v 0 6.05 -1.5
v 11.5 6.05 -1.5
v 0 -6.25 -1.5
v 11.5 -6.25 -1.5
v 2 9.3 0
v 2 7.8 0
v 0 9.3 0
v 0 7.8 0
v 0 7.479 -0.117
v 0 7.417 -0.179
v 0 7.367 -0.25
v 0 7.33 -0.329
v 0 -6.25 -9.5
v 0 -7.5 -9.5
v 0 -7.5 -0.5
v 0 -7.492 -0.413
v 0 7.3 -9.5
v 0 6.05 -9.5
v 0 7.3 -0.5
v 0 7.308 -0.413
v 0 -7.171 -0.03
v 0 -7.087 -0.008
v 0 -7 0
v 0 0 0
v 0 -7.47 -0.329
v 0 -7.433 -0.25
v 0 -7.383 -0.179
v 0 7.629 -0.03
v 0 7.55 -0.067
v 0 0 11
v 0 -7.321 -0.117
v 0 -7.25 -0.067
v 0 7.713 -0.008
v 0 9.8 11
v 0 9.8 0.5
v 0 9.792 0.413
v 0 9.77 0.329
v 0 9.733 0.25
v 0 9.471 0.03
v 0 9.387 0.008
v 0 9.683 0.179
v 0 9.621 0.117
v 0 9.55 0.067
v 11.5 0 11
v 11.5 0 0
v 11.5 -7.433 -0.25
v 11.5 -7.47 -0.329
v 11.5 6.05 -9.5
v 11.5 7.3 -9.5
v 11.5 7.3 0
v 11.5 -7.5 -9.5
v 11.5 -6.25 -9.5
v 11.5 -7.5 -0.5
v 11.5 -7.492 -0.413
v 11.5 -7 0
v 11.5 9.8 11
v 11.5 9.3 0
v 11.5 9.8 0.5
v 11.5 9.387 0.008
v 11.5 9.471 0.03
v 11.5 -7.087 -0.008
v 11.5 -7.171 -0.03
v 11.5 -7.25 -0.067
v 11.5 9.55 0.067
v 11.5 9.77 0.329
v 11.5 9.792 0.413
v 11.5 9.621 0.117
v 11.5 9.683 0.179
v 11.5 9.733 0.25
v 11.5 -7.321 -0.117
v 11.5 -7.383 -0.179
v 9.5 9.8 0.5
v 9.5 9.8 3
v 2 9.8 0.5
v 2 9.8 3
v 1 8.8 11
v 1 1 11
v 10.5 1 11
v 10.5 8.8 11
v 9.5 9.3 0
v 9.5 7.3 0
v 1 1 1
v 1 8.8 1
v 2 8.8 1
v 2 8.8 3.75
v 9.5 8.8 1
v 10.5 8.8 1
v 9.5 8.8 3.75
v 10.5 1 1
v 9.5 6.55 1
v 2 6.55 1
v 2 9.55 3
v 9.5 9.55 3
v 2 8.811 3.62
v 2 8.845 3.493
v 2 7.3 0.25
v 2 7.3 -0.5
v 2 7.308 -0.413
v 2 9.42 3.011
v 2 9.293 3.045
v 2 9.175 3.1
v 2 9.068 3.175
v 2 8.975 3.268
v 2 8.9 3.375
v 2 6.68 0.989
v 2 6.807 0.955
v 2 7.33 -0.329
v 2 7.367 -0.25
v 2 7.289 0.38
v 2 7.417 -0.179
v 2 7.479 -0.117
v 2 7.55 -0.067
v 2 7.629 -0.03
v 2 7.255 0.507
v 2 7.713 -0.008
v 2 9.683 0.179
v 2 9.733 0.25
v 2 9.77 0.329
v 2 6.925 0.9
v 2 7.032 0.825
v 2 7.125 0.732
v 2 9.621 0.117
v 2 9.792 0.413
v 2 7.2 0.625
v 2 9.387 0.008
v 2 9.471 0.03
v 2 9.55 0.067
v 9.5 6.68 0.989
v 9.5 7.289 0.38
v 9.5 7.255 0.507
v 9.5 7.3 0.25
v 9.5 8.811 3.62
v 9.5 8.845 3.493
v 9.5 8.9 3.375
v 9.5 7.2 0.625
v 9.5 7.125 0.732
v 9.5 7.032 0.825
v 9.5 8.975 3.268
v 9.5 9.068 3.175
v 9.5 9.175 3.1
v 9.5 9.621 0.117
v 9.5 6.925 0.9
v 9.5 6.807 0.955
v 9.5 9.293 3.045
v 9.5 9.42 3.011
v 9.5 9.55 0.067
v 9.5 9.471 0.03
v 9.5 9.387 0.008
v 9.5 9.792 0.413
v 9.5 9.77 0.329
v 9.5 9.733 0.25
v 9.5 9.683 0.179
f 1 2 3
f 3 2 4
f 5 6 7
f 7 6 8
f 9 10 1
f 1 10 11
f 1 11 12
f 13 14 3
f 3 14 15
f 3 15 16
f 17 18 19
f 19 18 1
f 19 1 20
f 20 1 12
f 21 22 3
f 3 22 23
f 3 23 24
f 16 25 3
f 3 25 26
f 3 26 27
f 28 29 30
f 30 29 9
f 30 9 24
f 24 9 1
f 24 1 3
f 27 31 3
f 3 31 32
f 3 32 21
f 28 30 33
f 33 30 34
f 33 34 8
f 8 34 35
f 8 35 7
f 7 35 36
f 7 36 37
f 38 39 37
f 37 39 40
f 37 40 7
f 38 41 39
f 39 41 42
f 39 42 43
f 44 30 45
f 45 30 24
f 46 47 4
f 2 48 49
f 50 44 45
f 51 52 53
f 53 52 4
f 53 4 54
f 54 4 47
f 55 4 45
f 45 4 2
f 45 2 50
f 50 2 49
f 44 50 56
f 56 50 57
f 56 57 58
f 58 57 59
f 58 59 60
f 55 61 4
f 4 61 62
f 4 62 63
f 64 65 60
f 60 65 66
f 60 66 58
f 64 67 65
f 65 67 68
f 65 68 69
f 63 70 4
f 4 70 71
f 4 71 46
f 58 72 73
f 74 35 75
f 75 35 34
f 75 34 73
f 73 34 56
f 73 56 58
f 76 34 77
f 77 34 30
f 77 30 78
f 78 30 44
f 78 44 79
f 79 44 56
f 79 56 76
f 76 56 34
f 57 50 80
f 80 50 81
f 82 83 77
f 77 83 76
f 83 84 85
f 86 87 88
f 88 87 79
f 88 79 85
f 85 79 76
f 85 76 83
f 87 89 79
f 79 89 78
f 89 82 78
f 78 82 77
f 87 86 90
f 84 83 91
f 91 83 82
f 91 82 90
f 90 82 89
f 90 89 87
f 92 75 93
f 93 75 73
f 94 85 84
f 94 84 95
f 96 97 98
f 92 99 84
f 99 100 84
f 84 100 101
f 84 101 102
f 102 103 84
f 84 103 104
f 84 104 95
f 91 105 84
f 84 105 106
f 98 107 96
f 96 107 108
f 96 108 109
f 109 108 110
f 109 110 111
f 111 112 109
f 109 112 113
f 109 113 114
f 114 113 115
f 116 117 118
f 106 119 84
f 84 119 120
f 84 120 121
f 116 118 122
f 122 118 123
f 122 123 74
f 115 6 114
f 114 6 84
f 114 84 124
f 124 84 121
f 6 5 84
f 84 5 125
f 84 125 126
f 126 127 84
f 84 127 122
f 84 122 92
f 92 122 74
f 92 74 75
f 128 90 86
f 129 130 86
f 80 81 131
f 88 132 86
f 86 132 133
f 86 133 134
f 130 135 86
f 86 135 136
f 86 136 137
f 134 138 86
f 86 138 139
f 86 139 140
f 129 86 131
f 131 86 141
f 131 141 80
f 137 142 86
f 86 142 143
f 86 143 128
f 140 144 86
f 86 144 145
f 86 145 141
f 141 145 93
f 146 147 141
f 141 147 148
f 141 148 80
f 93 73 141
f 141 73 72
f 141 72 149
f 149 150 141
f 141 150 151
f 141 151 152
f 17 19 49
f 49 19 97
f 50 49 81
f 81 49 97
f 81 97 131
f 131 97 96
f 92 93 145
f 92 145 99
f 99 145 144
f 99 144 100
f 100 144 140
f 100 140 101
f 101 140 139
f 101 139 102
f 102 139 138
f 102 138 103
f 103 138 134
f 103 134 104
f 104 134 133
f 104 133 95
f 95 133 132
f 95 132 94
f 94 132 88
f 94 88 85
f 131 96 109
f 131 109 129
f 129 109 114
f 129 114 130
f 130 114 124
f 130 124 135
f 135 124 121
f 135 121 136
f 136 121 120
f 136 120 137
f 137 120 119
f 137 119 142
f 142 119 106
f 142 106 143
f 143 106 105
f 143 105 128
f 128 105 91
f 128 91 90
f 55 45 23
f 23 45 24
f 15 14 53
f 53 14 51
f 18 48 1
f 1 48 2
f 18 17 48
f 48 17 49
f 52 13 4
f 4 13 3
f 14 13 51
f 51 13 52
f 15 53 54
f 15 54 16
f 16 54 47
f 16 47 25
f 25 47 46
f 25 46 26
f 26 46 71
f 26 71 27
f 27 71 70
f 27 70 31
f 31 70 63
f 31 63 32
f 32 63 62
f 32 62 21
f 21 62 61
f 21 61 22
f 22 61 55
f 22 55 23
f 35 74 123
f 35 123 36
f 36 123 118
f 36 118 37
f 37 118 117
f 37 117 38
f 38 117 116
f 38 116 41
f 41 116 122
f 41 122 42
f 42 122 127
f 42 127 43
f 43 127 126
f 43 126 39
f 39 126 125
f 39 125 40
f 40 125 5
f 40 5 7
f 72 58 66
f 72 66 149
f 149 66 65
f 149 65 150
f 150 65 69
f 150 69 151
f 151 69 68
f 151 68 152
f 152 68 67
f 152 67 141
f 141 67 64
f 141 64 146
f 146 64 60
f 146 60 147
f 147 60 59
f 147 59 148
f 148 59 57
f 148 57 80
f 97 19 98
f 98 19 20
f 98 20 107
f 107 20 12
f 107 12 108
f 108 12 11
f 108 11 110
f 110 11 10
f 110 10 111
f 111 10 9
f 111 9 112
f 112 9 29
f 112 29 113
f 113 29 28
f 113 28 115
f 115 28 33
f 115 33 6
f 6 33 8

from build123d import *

# Parameters (mm, degrees)
ESQUISSE1_W             = 11.5
ESQUISSE1_H             = 9.8
BOSS_EXTRU_1_DEPTH      = 11
ESQUISSE2_W             = 9.5
ESQUISSE2_H             = 7.8
ENL_V_MAT_EXTRU_1_DEPTH = 10
ESQUISSE3_W             = 7.5
ESQUISSE3_H             = 3
ENL_V_MAT_EXTRU_2_DEPTH = 2.5
CONG_1_R                = 0.75
ESQUISSE4_W             = 11.5
ESQUISSE4_H             = 14.8
BOSS_EXTRU_2_DEPTH      = 1.5
ESQUISSE5_W             = 11.5
ESQUISSE5_H             = 1.25
BOSS_EXTRU_3_DEPTH      = 8
CONG_2_R                = 0.5
CONG_3_R                = 0.5


with BuildPart() as part:
    # Esquisse1 → Boss.-Extru.1 (new body)
    with BuildSketch(Plane.XY):
        with Locations((5.75, 4.9)):
            Rectangle(ESQUISSE1_W, ESQUISSE1_H)
    extrude(amount=BOSS_EXTRU_1_DEPTH)

    # Esquisse2 → Enlèv. mat.-Extru.1 (cut)
    with BuildSketch(Plane.XY.offset(11)):
        with Locations((5.75, 4.9)):
            Rectangle(ESQUISSE2_W, ESQUISSE2_H)
    extrude(amount=-ENL_V_MAT_EXTRU_1_DEPTH, mode=Mode.SUBTRACT)

    # Esquisse3 → Enlèv. mat.-Extru.2 (cut)
    with BuildSketch(Plane(origin=(0, 9.8, 0), x_dir=(1, 0, 0), z_dir=(0, 1, 0))):
        with Locations((5.75, -1.5)):
            Rectangle(ESQUISSE3_W, ESQUISSE3_H)
    extrude(amount=-ENL_V_MAT_EXTRU_2_DEPTH, mode=Mode.SUBTRACT)

    # Congé1
    cong_1_edges = [part.edges().sort_by_distance(p)[0] for p in [
        (5.75, 7.3, 1),
        (5.75, 8.8, 3),
    ]]
    fillet(cong_1_edges, radius=CONG_1_R)

    # Esquisse4 → Boss.-Extru.2 (add)
    with BuildSketch(Plane(origin=(0, 0, 0), x_dir=(-1, 0, 0), z_dir=(0, 0, -1))):
        with Locations((-5.75, -0.1)):
            Rectangle(ESQUISSE4_W, ESQUISSE4_H)
    extrude(amount=BOSS_EXTRU_2_DEPTH)

    # Esquisse5 → Boss.-Extru.3 (add)
    with BuildSketch(Plane(origin=(0, 0, -1.5), x_dir=(-1, 0, 0), z_dir=(0, 0, -1))):
        with Locations((-5.75, 6.675)):
            Rectangle(ESQUISSE5_W, ESQUISSE5_H)
        with Locations((-5.75, -6.875)):
            Rectangle(ESQUISSE5_W, ESQUISSE5_H)
    extrude(amount=BOSS_EXTRU_3_DEPTH)

    # Congé2
    cong_2_edges = [part.edges().sort_by_distance(p)[0] for p in [
        (5.75, -7.5, 0),
    ]]
    fillet(cong_2_edges, radius=CONG_2_R)

    # Congé3
    cong_3_edges = [part.edges().sort_by_distance(p)[0] for p in [
        (1, 9.8, 0),
        (10.5, 9.8, 0),
        (1, 7.3, 0),
    ]]
    fillet(cong_3_edges, radius=CONG_3_R)


solid = part.part
